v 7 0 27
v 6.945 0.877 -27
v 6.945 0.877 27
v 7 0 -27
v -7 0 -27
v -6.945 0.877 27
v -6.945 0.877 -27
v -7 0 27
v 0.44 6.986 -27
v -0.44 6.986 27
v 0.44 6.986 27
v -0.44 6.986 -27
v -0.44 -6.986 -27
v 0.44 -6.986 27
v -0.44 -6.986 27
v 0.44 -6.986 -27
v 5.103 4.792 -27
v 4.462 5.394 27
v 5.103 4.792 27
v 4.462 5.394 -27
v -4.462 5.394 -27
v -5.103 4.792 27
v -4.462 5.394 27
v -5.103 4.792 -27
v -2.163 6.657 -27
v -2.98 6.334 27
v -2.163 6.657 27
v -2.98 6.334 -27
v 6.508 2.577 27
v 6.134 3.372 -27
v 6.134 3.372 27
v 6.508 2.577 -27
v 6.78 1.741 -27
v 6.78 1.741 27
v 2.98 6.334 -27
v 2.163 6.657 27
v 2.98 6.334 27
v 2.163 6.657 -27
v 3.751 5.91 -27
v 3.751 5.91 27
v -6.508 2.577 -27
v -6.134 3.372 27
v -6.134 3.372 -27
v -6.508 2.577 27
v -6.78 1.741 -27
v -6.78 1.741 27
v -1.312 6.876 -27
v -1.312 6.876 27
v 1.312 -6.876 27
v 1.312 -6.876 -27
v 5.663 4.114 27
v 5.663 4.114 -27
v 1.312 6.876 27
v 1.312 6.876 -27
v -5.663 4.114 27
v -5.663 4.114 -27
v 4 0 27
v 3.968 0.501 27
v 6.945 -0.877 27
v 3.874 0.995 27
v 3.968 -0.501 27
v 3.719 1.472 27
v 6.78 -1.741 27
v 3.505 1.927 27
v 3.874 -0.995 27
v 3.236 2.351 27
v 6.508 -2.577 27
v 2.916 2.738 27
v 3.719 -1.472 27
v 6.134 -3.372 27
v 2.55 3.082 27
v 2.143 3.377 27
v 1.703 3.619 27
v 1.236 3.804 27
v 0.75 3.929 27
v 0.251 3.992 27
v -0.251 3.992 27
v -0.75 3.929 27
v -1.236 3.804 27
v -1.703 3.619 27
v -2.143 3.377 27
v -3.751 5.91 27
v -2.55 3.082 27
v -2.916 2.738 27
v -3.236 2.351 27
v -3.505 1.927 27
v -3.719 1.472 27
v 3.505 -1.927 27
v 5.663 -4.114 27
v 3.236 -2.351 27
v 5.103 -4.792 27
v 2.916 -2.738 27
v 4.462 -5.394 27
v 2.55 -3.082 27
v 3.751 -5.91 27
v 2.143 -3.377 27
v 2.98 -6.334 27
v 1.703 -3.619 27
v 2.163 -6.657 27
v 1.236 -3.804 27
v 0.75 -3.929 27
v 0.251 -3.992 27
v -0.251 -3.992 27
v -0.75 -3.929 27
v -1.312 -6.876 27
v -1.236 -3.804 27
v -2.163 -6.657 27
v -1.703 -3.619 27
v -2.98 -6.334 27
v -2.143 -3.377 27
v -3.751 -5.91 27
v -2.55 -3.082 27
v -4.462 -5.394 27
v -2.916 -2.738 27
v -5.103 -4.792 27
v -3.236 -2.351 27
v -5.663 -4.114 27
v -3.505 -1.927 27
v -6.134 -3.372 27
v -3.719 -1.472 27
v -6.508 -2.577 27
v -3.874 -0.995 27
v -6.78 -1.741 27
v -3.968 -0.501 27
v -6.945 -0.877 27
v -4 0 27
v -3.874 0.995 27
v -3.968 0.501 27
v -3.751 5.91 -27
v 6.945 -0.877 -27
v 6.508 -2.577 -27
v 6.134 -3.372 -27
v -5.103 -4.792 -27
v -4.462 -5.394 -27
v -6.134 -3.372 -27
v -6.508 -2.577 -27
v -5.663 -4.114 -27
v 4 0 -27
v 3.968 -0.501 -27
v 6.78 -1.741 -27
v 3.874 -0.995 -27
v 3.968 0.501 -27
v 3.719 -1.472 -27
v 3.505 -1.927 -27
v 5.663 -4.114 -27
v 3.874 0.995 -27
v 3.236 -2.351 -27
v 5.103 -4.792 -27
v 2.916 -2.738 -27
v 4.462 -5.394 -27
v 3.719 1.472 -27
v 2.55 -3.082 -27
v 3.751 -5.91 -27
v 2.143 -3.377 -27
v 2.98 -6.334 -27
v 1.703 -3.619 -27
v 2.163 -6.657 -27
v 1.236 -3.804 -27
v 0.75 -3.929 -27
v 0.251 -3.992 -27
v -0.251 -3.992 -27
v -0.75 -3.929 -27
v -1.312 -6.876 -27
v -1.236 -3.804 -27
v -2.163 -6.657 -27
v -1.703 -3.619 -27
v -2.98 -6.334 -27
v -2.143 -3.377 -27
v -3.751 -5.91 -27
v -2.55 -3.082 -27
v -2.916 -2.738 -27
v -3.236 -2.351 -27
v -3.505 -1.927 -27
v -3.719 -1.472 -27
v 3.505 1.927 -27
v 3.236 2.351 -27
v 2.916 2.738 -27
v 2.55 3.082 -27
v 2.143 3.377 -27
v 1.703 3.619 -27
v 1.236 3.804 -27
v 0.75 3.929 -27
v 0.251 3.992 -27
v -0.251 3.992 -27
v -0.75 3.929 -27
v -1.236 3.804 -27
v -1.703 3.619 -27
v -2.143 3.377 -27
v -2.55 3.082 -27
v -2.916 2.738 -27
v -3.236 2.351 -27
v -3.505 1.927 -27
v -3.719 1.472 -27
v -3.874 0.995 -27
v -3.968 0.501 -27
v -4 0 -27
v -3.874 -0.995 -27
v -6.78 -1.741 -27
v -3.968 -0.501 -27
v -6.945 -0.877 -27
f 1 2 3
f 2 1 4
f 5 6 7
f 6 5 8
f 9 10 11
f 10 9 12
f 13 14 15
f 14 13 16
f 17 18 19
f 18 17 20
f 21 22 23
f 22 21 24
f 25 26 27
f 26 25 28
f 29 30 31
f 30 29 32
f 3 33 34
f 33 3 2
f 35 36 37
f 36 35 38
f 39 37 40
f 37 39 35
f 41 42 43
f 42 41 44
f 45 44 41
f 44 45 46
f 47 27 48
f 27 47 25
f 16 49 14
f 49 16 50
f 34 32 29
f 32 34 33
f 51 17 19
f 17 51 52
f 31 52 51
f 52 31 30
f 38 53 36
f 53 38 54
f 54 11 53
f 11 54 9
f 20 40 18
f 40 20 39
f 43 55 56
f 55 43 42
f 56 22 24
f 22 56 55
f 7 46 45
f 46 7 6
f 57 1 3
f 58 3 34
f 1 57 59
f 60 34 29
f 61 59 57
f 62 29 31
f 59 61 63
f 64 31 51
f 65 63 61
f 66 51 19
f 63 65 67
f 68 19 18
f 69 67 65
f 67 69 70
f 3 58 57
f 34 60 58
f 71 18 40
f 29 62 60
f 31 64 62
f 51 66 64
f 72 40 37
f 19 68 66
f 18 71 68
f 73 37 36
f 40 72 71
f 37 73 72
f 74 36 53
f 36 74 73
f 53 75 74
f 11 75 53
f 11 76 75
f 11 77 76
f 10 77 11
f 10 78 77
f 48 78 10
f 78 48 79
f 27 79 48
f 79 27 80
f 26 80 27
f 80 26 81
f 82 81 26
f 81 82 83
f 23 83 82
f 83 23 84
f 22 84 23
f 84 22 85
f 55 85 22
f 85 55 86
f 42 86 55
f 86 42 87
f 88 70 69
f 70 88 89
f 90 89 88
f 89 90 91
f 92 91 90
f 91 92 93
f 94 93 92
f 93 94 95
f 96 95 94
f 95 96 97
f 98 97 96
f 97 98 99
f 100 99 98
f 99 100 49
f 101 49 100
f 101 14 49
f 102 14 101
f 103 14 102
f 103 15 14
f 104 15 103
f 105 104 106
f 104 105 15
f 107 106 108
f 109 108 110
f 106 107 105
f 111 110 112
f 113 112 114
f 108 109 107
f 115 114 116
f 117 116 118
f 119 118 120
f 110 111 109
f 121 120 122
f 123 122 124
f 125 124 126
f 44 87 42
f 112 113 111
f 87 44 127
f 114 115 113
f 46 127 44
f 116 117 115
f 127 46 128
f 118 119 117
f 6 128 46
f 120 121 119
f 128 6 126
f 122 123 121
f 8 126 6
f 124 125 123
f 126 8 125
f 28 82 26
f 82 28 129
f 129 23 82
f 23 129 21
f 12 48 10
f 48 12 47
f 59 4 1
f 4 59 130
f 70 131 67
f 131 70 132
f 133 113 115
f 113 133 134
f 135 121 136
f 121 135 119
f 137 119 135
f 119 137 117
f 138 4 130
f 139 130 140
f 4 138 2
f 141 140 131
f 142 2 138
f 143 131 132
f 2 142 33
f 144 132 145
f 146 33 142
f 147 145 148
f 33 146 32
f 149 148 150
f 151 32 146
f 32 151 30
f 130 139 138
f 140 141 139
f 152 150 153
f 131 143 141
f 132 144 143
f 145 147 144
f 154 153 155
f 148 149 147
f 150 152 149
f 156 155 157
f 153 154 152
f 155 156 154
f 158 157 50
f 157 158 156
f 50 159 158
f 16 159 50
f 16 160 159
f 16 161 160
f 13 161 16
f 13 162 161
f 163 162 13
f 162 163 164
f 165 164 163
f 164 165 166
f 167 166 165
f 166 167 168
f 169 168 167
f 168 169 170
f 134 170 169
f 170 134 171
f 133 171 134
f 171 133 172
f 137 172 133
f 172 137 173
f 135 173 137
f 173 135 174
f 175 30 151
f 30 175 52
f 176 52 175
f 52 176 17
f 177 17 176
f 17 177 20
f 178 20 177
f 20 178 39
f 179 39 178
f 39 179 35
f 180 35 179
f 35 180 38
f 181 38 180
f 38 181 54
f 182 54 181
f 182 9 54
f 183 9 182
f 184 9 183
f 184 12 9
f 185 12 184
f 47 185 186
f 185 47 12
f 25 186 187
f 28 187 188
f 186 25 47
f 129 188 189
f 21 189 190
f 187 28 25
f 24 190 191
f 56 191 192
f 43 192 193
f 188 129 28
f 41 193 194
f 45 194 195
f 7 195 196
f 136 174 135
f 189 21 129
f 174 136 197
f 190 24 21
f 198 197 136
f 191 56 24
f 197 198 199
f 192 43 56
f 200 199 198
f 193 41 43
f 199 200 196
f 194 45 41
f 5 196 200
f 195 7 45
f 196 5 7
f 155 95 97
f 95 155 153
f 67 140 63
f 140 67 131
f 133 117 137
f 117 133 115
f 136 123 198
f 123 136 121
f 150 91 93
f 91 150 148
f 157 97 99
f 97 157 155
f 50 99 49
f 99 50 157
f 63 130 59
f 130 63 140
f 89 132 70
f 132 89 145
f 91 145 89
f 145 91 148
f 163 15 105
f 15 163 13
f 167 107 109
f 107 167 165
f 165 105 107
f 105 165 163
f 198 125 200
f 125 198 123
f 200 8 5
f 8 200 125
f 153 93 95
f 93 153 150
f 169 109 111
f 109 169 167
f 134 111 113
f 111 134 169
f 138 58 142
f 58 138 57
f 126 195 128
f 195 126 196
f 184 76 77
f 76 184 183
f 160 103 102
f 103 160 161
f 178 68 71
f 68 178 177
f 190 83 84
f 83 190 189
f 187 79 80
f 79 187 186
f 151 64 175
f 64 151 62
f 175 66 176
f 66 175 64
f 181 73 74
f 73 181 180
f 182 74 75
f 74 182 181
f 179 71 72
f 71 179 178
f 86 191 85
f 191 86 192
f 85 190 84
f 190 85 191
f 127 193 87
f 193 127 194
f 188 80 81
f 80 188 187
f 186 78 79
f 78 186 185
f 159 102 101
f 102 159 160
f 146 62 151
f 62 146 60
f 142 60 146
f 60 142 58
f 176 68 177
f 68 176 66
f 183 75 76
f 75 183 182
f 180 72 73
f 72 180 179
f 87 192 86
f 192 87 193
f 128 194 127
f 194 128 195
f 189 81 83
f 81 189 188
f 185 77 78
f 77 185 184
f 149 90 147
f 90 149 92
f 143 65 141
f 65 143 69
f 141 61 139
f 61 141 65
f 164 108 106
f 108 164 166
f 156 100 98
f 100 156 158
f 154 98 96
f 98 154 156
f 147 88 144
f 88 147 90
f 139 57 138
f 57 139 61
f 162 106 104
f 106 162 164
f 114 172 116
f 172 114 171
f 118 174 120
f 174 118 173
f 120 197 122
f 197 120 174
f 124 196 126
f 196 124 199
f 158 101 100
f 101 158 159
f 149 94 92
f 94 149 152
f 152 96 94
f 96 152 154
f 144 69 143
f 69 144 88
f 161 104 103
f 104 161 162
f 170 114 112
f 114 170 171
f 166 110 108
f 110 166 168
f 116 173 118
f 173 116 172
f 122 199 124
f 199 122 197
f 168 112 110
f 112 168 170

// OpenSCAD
$fn = 50;


difference() {
	union() {
		translate(v = [0, 0, -27.0000000000]) {
			cylinder(h = 54, r = 7.0000000000);
		}
	}
	union() {
		translate(v = [0, 0, -100.0000000000]) {
			cylinder(h = 200, r = 4);
		}
	}
}
